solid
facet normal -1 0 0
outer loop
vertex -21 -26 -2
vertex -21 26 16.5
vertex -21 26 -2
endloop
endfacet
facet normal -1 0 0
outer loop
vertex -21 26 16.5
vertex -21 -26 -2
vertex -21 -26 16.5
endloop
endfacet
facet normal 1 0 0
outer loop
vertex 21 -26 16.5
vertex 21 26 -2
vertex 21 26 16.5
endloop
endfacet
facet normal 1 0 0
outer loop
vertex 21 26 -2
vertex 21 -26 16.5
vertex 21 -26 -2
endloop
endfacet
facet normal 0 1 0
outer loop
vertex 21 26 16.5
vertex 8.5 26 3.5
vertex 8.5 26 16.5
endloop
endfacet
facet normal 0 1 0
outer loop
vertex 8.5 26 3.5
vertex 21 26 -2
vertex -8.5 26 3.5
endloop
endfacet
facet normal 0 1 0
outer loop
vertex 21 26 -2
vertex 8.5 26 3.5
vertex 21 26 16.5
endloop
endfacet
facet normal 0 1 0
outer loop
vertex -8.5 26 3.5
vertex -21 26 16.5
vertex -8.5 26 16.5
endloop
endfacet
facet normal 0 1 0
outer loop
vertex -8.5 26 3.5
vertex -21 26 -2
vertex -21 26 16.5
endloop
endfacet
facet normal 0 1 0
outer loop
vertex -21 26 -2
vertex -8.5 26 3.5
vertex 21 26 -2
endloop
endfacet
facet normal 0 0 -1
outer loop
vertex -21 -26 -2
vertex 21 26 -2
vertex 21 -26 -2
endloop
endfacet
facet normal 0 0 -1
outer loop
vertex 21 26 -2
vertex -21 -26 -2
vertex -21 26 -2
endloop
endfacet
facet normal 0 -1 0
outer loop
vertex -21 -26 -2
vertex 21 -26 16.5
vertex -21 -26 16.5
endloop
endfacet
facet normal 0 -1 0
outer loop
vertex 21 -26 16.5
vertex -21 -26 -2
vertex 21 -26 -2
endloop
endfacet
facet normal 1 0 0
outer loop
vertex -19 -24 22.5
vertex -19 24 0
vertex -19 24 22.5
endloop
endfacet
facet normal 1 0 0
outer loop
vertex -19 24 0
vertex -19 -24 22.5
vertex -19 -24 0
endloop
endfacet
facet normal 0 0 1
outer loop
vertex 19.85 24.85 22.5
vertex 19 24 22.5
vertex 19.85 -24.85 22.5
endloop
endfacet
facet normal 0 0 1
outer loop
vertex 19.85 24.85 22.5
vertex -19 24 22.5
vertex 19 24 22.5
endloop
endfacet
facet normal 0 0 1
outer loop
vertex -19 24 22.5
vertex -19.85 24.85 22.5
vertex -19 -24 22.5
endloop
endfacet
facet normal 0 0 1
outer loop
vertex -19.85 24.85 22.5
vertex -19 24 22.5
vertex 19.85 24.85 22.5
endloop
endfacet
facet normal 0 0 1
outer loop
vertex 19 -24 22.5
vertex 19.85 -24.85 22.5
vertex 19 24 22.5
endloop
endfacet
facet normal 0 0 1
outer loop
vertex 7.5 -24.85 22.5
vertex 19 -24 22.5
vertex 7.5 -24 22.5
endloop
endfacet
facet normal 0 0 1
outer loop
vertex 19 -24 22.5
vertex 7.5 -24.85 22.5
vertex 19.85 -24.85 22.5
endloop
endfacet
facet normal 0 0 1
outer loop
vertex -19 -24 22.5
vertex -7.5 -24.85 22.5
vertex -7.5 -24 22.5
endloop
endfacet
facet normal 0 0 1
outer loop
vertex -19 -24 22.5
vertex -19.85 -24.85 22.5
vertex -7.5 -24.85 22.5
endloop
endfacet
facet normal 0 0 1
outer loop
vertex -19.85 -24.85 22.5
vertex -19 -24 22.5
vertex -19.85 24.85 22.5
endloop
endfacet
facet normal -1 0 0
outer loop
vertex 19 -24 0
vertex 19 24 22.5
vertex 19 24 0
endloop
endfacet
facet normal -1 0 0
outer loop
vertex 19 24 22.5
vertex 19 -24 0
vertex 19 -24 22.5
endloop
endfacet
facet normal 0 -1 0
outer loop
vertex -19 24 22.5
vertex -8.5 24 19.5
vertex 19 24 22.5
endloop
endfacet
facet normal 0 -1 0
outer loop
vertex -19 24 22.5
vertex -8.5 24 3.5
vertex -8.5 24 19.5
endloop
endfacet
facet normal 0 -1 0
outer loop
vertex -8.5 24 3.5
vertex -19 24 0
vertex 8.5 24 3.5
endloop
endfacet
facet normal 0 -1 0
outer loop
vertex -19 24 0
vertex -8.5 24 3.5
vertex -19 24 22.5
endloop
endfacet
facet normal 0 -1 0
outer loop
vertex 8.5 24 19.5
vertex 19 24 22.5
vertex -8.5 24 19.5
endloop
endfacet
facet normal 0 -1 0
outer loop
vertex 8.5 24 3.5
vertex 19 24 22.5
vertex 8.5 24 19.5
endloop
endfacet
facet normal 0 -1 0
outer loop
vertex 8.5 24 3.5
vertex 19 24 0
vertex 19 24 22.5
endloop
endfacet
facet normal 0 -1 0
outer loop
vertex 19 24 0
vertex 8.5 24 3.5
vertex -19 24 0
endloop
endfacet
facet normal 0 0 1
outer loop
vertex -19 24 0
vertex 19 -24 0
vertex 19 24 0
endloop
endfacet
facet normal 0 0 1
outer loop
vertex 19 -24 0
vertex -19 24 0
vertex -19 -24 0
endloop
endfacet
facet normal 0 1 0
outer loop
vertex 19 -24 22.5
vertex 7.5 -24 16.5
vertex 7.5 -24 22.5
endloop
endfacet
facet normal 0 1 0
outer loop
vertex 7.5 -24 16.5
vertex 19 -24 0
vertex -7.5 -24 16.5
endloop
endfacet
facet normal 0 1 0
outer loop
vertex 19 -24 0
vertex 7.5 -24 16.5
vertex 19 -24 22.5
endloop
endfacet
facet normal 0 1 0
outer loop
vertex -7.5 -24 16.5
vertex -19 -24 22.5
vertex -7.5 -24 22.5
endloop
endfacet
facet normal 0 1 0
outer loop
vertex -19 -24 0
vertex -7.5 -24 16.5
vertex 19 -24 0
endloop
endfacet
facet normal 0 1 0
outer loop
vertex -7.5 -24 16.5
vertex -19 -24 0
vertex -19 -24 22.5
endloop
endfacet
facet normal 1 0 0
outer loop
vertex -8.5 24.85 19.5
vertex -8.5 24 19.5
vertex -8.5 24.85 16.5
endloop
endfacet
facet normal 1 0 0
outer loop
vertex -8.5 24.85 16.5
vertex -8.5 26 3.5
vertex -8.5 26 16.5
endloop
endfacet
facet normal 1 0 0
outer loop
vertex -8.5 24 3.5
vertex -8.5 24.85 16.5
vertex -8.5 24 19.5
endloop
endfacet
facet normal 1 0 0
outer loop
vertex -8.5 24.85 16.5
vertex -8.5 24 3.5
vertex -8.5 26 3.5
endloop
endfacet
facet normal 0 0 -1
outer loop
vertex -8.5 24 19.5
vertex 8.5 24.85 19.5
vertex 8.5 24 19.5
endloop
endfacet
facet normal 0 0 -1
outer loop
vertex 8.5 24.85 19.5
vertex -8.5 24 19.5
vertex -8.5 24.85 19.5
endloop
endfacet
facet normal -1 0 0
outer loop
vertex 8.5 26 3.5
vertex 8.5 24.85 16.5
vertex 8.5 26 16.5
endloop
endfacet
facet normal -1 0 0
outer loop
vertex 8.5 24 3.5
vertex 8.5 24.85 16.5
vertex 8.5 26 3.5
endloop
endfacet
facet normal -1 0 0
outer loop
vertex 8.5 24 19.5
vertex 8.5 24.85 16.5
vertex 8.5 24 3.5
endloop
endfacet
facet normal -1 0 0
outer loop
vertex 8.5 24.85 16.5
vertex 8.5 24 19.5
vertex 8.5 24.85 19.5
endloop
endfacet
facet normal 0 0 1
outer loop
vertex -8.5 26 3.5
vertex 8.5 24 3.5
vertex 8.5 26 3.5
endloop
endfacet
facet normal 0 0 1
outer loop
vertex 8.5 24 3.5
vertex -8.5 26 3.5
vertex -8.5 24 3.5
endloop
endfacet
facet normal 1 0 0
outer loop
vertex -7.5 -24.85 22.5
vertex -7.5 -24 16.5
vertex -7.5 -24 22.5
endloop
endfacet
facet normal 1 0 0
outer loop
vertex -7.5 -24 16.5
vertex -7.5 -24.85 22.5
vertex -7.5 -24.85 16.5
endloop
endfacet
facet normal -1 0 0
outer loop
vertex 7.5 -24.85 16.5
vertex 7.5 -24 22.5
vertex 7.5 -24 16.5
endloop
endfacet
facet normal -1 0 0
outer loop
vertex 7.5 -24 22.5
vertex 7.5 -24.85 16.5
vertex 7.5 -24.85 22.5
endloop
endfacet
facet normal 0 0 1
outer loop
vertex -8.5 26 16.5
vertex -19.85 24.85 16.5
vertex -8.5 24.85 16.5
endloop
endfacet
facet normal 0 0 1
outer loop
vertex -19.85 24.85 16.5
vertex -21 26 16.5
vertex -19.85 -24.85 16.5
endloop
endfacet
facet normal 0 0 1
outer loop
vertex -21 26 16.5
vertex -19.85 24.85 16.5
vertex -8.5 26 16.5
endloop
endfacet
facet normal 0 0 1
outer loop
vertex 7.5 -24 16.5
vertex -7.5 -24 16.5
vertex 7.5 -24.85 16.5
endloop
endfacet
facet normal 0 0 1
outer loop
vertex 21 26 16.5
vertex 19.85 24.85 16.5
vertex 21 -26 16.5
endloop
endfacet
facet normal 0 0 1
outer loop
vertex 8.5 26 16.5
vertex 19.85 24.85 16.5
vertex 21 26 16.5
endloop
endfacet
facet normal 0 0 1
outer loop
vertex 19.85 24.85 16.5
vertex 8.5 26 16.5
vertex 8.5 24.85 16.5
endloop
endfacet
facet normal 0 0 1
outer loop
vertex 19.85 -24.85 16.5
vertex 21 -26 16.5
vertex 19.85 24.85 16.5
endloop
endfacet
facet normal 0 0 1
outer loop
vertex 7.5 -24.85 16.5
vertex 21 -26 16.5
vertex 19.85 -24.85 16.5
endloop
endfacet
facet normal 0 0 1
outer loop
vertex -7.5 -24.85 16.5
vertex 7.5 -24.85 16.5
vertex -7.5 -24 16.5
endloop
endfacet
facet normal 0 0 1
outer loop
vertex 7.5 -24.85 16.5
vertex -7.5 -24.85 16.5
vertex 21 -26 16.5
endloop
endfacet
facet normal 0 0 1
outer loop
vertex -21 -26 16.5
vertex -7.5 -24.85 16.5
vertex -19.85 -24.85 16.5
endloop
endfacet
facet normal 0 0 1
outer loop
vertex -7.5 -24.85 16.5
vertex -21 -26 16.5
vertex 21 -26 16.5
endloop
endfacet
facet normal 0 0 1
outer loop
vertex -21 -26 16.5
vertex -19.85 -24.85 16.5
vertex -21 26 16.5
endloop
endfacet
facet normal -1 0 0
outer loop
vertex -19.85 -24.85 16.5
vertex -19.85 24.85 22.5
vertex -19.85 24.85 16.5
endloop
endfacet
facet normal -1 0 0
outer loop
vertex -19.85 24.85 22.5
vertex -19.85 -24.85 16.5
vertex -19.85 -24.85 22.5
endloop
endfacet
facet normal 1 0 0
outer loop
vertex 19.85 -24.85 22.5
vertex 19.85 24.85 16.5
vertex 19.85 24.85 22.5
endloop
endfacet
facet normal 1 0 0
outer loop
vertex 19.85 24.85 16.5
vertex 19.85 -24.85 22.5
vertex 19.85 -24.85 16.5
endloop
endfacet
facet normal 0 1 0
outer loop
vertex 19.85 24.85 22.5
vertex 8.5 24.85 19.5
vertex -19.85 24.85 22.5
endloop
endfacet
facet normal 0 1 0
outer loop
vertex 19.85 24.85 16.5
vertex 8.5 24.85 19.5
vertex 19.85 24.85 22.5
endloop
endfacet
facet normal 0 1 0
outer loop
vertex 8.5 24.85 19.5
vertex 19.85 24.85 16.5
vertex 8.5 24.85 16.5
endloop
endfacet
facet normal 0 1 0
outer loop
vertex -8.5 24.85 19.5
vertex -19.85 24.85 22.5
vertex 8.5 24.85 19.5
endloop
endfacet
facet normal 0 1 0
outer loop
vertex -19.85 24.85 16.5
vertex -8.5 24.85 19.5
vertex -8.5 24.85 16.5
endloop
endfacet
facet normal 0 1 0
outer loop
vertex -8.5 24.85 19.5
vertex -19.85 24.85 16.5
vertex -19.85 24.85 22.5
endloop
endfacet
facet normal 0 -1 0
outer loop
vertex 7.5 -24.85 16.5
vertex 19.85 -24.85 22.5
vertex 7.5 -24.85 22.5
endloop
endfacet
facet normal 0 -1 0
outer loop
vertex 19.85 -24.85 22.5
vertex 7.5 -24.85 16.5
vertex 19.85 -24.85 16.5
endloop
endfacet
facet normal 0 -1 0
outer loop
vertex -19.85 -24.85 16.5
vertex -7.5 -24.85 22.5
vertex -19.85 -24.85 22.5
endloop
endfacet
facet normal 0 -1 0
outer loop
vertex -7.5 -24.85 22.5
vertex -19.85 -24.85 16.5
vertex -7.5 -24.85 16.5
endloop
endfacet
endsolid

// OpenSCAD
// This version fits the Olimex Ethernet board with the
// unneeded header pins clipped off.


wiggle_room = 0.3;

my_fn=40;

width_inner = 38;
length_inner = 48;
height_inner = 22.5;



wall_thickness = 2.0;

width_outer = width_inner + (2 * wall_thickness);
length_outer = length_inner + (2 * wall_thickness);
height_outer = height_inner + (2 * wall_thickness);

lid_height_i = 6.0;
lid_height = lid_height_i + wall_thickness;
lid_width_i = width_inner + wall_thickness;

lid_length_i = length_inner + wall_thickness;

proper_lid_height = height_outer-wall_thickness-lid_height;

module connectorHoles() {
    ethHeight = 16.0;
    ethWidth = 17.0;
    ethYoff = 3.5;
    ribbonHeight = 6.0;
    ribbonWidth = 15.0;
    ribbonYoff = 16.5;
    #translate([0,length_outer/2,ethYoff+ethHeight/2])
        cube([ethWidth,20,ethHeight], center=true);
    #translate([0,-length_outer/2,ribbonYoff+ribbonHeight/2])
        cube([ribbonWidth,20,ribbonHeight], center=true);
}

// Interior floor of box is at z=0.
module rawBox() {
    difference() {
        translate(v=[0,0,height_inner/2]) difference() {
            cube([width_outer,length_outer,height_outer],center=true);
            cube([width_inner,length_inner,height_inner],center=true);
        }
    }
}




module lidHoles() {
    $fn = 32;
    hole_sep = 9.3;
    hole_dia = 7.0;
    for(x = [-(width_inner/2)+5 : hole_sep : (width_inner/2)-5]) {
        for(y = [-(length_inner/2)+5 : hole_sep : (length_inner/2)-5]) {
            echo(x, y);
            translate([x, y, 0]) cylinder(d=hole_dia, h=20.0, center = true);
        }
    }
}



// This does not have the connector holes!
module rawLidAtZero() {
	difference() {
		translate(v=[0,0,lid_height/2]) cube([width_outer,length_outer,lid_height],center=true);
		translate(v=[0,0,lid_height_i/2]) cube([lid_width_i,lid_length_i,lid_height_i],center=true);
        #lidHoles();
	}
}

// This does not have the connector holes!
module rawLidAtZeroWithWiggle() {
	difference() {
		translate(v=[0,0,lid_height/2]) cube([width_outer,length_outer,lid_height],center=true);
		translate(v=[0,0,lid_height_i/2]) cube([lid_width_i - wiggle_room,lid_length_i  - wiggle_room,lid_height_i],center=true);
	}
}


module lidAtProperHeight() {
    difference() {
        translate(v=[0,0,proper_lid_height]) rawLidAtZero();
        #connectorHoles();
    }
}



module lidAtProperHeightWithWiggle() {
    difference() {
        translate(v=[0,0,proper_lid_height]) rawLidAtZeroWithWiggle();
        #connectorHoles();
    }
}

module boxNoLid() {
	difference() {
		rawBox();
        connectorHoles();
		#lidAtProperHeightWithWiggle();
	}
}



module boxPrintable() {
	translate(v=[(width_outer/2)+5,0,0]) boxNoLid();
	translate(v=[(width_outer/-2)-5,0, proper_lid_height+lid_height_i]) rotate([0,180,0]) lidAtProperHeight();
}


module boxOnlyPrintable() {
	boxNoLid();
}

module lidOnlyPrintable() {
	translate(v=[0,0,lid_height]) rotate([180,0,0]) lidAtProperHeight();
}


// Square box
//boxPrintable();
boxOnlyPrintable();
//lidOnlyPrintable();

//boxNoLid();
//translate([0,0,20]) lidAtProperHeightWithWiggle();

//myBox();
//lidAtProperHeightWithWiggle();
//lidAtProperHeight();
